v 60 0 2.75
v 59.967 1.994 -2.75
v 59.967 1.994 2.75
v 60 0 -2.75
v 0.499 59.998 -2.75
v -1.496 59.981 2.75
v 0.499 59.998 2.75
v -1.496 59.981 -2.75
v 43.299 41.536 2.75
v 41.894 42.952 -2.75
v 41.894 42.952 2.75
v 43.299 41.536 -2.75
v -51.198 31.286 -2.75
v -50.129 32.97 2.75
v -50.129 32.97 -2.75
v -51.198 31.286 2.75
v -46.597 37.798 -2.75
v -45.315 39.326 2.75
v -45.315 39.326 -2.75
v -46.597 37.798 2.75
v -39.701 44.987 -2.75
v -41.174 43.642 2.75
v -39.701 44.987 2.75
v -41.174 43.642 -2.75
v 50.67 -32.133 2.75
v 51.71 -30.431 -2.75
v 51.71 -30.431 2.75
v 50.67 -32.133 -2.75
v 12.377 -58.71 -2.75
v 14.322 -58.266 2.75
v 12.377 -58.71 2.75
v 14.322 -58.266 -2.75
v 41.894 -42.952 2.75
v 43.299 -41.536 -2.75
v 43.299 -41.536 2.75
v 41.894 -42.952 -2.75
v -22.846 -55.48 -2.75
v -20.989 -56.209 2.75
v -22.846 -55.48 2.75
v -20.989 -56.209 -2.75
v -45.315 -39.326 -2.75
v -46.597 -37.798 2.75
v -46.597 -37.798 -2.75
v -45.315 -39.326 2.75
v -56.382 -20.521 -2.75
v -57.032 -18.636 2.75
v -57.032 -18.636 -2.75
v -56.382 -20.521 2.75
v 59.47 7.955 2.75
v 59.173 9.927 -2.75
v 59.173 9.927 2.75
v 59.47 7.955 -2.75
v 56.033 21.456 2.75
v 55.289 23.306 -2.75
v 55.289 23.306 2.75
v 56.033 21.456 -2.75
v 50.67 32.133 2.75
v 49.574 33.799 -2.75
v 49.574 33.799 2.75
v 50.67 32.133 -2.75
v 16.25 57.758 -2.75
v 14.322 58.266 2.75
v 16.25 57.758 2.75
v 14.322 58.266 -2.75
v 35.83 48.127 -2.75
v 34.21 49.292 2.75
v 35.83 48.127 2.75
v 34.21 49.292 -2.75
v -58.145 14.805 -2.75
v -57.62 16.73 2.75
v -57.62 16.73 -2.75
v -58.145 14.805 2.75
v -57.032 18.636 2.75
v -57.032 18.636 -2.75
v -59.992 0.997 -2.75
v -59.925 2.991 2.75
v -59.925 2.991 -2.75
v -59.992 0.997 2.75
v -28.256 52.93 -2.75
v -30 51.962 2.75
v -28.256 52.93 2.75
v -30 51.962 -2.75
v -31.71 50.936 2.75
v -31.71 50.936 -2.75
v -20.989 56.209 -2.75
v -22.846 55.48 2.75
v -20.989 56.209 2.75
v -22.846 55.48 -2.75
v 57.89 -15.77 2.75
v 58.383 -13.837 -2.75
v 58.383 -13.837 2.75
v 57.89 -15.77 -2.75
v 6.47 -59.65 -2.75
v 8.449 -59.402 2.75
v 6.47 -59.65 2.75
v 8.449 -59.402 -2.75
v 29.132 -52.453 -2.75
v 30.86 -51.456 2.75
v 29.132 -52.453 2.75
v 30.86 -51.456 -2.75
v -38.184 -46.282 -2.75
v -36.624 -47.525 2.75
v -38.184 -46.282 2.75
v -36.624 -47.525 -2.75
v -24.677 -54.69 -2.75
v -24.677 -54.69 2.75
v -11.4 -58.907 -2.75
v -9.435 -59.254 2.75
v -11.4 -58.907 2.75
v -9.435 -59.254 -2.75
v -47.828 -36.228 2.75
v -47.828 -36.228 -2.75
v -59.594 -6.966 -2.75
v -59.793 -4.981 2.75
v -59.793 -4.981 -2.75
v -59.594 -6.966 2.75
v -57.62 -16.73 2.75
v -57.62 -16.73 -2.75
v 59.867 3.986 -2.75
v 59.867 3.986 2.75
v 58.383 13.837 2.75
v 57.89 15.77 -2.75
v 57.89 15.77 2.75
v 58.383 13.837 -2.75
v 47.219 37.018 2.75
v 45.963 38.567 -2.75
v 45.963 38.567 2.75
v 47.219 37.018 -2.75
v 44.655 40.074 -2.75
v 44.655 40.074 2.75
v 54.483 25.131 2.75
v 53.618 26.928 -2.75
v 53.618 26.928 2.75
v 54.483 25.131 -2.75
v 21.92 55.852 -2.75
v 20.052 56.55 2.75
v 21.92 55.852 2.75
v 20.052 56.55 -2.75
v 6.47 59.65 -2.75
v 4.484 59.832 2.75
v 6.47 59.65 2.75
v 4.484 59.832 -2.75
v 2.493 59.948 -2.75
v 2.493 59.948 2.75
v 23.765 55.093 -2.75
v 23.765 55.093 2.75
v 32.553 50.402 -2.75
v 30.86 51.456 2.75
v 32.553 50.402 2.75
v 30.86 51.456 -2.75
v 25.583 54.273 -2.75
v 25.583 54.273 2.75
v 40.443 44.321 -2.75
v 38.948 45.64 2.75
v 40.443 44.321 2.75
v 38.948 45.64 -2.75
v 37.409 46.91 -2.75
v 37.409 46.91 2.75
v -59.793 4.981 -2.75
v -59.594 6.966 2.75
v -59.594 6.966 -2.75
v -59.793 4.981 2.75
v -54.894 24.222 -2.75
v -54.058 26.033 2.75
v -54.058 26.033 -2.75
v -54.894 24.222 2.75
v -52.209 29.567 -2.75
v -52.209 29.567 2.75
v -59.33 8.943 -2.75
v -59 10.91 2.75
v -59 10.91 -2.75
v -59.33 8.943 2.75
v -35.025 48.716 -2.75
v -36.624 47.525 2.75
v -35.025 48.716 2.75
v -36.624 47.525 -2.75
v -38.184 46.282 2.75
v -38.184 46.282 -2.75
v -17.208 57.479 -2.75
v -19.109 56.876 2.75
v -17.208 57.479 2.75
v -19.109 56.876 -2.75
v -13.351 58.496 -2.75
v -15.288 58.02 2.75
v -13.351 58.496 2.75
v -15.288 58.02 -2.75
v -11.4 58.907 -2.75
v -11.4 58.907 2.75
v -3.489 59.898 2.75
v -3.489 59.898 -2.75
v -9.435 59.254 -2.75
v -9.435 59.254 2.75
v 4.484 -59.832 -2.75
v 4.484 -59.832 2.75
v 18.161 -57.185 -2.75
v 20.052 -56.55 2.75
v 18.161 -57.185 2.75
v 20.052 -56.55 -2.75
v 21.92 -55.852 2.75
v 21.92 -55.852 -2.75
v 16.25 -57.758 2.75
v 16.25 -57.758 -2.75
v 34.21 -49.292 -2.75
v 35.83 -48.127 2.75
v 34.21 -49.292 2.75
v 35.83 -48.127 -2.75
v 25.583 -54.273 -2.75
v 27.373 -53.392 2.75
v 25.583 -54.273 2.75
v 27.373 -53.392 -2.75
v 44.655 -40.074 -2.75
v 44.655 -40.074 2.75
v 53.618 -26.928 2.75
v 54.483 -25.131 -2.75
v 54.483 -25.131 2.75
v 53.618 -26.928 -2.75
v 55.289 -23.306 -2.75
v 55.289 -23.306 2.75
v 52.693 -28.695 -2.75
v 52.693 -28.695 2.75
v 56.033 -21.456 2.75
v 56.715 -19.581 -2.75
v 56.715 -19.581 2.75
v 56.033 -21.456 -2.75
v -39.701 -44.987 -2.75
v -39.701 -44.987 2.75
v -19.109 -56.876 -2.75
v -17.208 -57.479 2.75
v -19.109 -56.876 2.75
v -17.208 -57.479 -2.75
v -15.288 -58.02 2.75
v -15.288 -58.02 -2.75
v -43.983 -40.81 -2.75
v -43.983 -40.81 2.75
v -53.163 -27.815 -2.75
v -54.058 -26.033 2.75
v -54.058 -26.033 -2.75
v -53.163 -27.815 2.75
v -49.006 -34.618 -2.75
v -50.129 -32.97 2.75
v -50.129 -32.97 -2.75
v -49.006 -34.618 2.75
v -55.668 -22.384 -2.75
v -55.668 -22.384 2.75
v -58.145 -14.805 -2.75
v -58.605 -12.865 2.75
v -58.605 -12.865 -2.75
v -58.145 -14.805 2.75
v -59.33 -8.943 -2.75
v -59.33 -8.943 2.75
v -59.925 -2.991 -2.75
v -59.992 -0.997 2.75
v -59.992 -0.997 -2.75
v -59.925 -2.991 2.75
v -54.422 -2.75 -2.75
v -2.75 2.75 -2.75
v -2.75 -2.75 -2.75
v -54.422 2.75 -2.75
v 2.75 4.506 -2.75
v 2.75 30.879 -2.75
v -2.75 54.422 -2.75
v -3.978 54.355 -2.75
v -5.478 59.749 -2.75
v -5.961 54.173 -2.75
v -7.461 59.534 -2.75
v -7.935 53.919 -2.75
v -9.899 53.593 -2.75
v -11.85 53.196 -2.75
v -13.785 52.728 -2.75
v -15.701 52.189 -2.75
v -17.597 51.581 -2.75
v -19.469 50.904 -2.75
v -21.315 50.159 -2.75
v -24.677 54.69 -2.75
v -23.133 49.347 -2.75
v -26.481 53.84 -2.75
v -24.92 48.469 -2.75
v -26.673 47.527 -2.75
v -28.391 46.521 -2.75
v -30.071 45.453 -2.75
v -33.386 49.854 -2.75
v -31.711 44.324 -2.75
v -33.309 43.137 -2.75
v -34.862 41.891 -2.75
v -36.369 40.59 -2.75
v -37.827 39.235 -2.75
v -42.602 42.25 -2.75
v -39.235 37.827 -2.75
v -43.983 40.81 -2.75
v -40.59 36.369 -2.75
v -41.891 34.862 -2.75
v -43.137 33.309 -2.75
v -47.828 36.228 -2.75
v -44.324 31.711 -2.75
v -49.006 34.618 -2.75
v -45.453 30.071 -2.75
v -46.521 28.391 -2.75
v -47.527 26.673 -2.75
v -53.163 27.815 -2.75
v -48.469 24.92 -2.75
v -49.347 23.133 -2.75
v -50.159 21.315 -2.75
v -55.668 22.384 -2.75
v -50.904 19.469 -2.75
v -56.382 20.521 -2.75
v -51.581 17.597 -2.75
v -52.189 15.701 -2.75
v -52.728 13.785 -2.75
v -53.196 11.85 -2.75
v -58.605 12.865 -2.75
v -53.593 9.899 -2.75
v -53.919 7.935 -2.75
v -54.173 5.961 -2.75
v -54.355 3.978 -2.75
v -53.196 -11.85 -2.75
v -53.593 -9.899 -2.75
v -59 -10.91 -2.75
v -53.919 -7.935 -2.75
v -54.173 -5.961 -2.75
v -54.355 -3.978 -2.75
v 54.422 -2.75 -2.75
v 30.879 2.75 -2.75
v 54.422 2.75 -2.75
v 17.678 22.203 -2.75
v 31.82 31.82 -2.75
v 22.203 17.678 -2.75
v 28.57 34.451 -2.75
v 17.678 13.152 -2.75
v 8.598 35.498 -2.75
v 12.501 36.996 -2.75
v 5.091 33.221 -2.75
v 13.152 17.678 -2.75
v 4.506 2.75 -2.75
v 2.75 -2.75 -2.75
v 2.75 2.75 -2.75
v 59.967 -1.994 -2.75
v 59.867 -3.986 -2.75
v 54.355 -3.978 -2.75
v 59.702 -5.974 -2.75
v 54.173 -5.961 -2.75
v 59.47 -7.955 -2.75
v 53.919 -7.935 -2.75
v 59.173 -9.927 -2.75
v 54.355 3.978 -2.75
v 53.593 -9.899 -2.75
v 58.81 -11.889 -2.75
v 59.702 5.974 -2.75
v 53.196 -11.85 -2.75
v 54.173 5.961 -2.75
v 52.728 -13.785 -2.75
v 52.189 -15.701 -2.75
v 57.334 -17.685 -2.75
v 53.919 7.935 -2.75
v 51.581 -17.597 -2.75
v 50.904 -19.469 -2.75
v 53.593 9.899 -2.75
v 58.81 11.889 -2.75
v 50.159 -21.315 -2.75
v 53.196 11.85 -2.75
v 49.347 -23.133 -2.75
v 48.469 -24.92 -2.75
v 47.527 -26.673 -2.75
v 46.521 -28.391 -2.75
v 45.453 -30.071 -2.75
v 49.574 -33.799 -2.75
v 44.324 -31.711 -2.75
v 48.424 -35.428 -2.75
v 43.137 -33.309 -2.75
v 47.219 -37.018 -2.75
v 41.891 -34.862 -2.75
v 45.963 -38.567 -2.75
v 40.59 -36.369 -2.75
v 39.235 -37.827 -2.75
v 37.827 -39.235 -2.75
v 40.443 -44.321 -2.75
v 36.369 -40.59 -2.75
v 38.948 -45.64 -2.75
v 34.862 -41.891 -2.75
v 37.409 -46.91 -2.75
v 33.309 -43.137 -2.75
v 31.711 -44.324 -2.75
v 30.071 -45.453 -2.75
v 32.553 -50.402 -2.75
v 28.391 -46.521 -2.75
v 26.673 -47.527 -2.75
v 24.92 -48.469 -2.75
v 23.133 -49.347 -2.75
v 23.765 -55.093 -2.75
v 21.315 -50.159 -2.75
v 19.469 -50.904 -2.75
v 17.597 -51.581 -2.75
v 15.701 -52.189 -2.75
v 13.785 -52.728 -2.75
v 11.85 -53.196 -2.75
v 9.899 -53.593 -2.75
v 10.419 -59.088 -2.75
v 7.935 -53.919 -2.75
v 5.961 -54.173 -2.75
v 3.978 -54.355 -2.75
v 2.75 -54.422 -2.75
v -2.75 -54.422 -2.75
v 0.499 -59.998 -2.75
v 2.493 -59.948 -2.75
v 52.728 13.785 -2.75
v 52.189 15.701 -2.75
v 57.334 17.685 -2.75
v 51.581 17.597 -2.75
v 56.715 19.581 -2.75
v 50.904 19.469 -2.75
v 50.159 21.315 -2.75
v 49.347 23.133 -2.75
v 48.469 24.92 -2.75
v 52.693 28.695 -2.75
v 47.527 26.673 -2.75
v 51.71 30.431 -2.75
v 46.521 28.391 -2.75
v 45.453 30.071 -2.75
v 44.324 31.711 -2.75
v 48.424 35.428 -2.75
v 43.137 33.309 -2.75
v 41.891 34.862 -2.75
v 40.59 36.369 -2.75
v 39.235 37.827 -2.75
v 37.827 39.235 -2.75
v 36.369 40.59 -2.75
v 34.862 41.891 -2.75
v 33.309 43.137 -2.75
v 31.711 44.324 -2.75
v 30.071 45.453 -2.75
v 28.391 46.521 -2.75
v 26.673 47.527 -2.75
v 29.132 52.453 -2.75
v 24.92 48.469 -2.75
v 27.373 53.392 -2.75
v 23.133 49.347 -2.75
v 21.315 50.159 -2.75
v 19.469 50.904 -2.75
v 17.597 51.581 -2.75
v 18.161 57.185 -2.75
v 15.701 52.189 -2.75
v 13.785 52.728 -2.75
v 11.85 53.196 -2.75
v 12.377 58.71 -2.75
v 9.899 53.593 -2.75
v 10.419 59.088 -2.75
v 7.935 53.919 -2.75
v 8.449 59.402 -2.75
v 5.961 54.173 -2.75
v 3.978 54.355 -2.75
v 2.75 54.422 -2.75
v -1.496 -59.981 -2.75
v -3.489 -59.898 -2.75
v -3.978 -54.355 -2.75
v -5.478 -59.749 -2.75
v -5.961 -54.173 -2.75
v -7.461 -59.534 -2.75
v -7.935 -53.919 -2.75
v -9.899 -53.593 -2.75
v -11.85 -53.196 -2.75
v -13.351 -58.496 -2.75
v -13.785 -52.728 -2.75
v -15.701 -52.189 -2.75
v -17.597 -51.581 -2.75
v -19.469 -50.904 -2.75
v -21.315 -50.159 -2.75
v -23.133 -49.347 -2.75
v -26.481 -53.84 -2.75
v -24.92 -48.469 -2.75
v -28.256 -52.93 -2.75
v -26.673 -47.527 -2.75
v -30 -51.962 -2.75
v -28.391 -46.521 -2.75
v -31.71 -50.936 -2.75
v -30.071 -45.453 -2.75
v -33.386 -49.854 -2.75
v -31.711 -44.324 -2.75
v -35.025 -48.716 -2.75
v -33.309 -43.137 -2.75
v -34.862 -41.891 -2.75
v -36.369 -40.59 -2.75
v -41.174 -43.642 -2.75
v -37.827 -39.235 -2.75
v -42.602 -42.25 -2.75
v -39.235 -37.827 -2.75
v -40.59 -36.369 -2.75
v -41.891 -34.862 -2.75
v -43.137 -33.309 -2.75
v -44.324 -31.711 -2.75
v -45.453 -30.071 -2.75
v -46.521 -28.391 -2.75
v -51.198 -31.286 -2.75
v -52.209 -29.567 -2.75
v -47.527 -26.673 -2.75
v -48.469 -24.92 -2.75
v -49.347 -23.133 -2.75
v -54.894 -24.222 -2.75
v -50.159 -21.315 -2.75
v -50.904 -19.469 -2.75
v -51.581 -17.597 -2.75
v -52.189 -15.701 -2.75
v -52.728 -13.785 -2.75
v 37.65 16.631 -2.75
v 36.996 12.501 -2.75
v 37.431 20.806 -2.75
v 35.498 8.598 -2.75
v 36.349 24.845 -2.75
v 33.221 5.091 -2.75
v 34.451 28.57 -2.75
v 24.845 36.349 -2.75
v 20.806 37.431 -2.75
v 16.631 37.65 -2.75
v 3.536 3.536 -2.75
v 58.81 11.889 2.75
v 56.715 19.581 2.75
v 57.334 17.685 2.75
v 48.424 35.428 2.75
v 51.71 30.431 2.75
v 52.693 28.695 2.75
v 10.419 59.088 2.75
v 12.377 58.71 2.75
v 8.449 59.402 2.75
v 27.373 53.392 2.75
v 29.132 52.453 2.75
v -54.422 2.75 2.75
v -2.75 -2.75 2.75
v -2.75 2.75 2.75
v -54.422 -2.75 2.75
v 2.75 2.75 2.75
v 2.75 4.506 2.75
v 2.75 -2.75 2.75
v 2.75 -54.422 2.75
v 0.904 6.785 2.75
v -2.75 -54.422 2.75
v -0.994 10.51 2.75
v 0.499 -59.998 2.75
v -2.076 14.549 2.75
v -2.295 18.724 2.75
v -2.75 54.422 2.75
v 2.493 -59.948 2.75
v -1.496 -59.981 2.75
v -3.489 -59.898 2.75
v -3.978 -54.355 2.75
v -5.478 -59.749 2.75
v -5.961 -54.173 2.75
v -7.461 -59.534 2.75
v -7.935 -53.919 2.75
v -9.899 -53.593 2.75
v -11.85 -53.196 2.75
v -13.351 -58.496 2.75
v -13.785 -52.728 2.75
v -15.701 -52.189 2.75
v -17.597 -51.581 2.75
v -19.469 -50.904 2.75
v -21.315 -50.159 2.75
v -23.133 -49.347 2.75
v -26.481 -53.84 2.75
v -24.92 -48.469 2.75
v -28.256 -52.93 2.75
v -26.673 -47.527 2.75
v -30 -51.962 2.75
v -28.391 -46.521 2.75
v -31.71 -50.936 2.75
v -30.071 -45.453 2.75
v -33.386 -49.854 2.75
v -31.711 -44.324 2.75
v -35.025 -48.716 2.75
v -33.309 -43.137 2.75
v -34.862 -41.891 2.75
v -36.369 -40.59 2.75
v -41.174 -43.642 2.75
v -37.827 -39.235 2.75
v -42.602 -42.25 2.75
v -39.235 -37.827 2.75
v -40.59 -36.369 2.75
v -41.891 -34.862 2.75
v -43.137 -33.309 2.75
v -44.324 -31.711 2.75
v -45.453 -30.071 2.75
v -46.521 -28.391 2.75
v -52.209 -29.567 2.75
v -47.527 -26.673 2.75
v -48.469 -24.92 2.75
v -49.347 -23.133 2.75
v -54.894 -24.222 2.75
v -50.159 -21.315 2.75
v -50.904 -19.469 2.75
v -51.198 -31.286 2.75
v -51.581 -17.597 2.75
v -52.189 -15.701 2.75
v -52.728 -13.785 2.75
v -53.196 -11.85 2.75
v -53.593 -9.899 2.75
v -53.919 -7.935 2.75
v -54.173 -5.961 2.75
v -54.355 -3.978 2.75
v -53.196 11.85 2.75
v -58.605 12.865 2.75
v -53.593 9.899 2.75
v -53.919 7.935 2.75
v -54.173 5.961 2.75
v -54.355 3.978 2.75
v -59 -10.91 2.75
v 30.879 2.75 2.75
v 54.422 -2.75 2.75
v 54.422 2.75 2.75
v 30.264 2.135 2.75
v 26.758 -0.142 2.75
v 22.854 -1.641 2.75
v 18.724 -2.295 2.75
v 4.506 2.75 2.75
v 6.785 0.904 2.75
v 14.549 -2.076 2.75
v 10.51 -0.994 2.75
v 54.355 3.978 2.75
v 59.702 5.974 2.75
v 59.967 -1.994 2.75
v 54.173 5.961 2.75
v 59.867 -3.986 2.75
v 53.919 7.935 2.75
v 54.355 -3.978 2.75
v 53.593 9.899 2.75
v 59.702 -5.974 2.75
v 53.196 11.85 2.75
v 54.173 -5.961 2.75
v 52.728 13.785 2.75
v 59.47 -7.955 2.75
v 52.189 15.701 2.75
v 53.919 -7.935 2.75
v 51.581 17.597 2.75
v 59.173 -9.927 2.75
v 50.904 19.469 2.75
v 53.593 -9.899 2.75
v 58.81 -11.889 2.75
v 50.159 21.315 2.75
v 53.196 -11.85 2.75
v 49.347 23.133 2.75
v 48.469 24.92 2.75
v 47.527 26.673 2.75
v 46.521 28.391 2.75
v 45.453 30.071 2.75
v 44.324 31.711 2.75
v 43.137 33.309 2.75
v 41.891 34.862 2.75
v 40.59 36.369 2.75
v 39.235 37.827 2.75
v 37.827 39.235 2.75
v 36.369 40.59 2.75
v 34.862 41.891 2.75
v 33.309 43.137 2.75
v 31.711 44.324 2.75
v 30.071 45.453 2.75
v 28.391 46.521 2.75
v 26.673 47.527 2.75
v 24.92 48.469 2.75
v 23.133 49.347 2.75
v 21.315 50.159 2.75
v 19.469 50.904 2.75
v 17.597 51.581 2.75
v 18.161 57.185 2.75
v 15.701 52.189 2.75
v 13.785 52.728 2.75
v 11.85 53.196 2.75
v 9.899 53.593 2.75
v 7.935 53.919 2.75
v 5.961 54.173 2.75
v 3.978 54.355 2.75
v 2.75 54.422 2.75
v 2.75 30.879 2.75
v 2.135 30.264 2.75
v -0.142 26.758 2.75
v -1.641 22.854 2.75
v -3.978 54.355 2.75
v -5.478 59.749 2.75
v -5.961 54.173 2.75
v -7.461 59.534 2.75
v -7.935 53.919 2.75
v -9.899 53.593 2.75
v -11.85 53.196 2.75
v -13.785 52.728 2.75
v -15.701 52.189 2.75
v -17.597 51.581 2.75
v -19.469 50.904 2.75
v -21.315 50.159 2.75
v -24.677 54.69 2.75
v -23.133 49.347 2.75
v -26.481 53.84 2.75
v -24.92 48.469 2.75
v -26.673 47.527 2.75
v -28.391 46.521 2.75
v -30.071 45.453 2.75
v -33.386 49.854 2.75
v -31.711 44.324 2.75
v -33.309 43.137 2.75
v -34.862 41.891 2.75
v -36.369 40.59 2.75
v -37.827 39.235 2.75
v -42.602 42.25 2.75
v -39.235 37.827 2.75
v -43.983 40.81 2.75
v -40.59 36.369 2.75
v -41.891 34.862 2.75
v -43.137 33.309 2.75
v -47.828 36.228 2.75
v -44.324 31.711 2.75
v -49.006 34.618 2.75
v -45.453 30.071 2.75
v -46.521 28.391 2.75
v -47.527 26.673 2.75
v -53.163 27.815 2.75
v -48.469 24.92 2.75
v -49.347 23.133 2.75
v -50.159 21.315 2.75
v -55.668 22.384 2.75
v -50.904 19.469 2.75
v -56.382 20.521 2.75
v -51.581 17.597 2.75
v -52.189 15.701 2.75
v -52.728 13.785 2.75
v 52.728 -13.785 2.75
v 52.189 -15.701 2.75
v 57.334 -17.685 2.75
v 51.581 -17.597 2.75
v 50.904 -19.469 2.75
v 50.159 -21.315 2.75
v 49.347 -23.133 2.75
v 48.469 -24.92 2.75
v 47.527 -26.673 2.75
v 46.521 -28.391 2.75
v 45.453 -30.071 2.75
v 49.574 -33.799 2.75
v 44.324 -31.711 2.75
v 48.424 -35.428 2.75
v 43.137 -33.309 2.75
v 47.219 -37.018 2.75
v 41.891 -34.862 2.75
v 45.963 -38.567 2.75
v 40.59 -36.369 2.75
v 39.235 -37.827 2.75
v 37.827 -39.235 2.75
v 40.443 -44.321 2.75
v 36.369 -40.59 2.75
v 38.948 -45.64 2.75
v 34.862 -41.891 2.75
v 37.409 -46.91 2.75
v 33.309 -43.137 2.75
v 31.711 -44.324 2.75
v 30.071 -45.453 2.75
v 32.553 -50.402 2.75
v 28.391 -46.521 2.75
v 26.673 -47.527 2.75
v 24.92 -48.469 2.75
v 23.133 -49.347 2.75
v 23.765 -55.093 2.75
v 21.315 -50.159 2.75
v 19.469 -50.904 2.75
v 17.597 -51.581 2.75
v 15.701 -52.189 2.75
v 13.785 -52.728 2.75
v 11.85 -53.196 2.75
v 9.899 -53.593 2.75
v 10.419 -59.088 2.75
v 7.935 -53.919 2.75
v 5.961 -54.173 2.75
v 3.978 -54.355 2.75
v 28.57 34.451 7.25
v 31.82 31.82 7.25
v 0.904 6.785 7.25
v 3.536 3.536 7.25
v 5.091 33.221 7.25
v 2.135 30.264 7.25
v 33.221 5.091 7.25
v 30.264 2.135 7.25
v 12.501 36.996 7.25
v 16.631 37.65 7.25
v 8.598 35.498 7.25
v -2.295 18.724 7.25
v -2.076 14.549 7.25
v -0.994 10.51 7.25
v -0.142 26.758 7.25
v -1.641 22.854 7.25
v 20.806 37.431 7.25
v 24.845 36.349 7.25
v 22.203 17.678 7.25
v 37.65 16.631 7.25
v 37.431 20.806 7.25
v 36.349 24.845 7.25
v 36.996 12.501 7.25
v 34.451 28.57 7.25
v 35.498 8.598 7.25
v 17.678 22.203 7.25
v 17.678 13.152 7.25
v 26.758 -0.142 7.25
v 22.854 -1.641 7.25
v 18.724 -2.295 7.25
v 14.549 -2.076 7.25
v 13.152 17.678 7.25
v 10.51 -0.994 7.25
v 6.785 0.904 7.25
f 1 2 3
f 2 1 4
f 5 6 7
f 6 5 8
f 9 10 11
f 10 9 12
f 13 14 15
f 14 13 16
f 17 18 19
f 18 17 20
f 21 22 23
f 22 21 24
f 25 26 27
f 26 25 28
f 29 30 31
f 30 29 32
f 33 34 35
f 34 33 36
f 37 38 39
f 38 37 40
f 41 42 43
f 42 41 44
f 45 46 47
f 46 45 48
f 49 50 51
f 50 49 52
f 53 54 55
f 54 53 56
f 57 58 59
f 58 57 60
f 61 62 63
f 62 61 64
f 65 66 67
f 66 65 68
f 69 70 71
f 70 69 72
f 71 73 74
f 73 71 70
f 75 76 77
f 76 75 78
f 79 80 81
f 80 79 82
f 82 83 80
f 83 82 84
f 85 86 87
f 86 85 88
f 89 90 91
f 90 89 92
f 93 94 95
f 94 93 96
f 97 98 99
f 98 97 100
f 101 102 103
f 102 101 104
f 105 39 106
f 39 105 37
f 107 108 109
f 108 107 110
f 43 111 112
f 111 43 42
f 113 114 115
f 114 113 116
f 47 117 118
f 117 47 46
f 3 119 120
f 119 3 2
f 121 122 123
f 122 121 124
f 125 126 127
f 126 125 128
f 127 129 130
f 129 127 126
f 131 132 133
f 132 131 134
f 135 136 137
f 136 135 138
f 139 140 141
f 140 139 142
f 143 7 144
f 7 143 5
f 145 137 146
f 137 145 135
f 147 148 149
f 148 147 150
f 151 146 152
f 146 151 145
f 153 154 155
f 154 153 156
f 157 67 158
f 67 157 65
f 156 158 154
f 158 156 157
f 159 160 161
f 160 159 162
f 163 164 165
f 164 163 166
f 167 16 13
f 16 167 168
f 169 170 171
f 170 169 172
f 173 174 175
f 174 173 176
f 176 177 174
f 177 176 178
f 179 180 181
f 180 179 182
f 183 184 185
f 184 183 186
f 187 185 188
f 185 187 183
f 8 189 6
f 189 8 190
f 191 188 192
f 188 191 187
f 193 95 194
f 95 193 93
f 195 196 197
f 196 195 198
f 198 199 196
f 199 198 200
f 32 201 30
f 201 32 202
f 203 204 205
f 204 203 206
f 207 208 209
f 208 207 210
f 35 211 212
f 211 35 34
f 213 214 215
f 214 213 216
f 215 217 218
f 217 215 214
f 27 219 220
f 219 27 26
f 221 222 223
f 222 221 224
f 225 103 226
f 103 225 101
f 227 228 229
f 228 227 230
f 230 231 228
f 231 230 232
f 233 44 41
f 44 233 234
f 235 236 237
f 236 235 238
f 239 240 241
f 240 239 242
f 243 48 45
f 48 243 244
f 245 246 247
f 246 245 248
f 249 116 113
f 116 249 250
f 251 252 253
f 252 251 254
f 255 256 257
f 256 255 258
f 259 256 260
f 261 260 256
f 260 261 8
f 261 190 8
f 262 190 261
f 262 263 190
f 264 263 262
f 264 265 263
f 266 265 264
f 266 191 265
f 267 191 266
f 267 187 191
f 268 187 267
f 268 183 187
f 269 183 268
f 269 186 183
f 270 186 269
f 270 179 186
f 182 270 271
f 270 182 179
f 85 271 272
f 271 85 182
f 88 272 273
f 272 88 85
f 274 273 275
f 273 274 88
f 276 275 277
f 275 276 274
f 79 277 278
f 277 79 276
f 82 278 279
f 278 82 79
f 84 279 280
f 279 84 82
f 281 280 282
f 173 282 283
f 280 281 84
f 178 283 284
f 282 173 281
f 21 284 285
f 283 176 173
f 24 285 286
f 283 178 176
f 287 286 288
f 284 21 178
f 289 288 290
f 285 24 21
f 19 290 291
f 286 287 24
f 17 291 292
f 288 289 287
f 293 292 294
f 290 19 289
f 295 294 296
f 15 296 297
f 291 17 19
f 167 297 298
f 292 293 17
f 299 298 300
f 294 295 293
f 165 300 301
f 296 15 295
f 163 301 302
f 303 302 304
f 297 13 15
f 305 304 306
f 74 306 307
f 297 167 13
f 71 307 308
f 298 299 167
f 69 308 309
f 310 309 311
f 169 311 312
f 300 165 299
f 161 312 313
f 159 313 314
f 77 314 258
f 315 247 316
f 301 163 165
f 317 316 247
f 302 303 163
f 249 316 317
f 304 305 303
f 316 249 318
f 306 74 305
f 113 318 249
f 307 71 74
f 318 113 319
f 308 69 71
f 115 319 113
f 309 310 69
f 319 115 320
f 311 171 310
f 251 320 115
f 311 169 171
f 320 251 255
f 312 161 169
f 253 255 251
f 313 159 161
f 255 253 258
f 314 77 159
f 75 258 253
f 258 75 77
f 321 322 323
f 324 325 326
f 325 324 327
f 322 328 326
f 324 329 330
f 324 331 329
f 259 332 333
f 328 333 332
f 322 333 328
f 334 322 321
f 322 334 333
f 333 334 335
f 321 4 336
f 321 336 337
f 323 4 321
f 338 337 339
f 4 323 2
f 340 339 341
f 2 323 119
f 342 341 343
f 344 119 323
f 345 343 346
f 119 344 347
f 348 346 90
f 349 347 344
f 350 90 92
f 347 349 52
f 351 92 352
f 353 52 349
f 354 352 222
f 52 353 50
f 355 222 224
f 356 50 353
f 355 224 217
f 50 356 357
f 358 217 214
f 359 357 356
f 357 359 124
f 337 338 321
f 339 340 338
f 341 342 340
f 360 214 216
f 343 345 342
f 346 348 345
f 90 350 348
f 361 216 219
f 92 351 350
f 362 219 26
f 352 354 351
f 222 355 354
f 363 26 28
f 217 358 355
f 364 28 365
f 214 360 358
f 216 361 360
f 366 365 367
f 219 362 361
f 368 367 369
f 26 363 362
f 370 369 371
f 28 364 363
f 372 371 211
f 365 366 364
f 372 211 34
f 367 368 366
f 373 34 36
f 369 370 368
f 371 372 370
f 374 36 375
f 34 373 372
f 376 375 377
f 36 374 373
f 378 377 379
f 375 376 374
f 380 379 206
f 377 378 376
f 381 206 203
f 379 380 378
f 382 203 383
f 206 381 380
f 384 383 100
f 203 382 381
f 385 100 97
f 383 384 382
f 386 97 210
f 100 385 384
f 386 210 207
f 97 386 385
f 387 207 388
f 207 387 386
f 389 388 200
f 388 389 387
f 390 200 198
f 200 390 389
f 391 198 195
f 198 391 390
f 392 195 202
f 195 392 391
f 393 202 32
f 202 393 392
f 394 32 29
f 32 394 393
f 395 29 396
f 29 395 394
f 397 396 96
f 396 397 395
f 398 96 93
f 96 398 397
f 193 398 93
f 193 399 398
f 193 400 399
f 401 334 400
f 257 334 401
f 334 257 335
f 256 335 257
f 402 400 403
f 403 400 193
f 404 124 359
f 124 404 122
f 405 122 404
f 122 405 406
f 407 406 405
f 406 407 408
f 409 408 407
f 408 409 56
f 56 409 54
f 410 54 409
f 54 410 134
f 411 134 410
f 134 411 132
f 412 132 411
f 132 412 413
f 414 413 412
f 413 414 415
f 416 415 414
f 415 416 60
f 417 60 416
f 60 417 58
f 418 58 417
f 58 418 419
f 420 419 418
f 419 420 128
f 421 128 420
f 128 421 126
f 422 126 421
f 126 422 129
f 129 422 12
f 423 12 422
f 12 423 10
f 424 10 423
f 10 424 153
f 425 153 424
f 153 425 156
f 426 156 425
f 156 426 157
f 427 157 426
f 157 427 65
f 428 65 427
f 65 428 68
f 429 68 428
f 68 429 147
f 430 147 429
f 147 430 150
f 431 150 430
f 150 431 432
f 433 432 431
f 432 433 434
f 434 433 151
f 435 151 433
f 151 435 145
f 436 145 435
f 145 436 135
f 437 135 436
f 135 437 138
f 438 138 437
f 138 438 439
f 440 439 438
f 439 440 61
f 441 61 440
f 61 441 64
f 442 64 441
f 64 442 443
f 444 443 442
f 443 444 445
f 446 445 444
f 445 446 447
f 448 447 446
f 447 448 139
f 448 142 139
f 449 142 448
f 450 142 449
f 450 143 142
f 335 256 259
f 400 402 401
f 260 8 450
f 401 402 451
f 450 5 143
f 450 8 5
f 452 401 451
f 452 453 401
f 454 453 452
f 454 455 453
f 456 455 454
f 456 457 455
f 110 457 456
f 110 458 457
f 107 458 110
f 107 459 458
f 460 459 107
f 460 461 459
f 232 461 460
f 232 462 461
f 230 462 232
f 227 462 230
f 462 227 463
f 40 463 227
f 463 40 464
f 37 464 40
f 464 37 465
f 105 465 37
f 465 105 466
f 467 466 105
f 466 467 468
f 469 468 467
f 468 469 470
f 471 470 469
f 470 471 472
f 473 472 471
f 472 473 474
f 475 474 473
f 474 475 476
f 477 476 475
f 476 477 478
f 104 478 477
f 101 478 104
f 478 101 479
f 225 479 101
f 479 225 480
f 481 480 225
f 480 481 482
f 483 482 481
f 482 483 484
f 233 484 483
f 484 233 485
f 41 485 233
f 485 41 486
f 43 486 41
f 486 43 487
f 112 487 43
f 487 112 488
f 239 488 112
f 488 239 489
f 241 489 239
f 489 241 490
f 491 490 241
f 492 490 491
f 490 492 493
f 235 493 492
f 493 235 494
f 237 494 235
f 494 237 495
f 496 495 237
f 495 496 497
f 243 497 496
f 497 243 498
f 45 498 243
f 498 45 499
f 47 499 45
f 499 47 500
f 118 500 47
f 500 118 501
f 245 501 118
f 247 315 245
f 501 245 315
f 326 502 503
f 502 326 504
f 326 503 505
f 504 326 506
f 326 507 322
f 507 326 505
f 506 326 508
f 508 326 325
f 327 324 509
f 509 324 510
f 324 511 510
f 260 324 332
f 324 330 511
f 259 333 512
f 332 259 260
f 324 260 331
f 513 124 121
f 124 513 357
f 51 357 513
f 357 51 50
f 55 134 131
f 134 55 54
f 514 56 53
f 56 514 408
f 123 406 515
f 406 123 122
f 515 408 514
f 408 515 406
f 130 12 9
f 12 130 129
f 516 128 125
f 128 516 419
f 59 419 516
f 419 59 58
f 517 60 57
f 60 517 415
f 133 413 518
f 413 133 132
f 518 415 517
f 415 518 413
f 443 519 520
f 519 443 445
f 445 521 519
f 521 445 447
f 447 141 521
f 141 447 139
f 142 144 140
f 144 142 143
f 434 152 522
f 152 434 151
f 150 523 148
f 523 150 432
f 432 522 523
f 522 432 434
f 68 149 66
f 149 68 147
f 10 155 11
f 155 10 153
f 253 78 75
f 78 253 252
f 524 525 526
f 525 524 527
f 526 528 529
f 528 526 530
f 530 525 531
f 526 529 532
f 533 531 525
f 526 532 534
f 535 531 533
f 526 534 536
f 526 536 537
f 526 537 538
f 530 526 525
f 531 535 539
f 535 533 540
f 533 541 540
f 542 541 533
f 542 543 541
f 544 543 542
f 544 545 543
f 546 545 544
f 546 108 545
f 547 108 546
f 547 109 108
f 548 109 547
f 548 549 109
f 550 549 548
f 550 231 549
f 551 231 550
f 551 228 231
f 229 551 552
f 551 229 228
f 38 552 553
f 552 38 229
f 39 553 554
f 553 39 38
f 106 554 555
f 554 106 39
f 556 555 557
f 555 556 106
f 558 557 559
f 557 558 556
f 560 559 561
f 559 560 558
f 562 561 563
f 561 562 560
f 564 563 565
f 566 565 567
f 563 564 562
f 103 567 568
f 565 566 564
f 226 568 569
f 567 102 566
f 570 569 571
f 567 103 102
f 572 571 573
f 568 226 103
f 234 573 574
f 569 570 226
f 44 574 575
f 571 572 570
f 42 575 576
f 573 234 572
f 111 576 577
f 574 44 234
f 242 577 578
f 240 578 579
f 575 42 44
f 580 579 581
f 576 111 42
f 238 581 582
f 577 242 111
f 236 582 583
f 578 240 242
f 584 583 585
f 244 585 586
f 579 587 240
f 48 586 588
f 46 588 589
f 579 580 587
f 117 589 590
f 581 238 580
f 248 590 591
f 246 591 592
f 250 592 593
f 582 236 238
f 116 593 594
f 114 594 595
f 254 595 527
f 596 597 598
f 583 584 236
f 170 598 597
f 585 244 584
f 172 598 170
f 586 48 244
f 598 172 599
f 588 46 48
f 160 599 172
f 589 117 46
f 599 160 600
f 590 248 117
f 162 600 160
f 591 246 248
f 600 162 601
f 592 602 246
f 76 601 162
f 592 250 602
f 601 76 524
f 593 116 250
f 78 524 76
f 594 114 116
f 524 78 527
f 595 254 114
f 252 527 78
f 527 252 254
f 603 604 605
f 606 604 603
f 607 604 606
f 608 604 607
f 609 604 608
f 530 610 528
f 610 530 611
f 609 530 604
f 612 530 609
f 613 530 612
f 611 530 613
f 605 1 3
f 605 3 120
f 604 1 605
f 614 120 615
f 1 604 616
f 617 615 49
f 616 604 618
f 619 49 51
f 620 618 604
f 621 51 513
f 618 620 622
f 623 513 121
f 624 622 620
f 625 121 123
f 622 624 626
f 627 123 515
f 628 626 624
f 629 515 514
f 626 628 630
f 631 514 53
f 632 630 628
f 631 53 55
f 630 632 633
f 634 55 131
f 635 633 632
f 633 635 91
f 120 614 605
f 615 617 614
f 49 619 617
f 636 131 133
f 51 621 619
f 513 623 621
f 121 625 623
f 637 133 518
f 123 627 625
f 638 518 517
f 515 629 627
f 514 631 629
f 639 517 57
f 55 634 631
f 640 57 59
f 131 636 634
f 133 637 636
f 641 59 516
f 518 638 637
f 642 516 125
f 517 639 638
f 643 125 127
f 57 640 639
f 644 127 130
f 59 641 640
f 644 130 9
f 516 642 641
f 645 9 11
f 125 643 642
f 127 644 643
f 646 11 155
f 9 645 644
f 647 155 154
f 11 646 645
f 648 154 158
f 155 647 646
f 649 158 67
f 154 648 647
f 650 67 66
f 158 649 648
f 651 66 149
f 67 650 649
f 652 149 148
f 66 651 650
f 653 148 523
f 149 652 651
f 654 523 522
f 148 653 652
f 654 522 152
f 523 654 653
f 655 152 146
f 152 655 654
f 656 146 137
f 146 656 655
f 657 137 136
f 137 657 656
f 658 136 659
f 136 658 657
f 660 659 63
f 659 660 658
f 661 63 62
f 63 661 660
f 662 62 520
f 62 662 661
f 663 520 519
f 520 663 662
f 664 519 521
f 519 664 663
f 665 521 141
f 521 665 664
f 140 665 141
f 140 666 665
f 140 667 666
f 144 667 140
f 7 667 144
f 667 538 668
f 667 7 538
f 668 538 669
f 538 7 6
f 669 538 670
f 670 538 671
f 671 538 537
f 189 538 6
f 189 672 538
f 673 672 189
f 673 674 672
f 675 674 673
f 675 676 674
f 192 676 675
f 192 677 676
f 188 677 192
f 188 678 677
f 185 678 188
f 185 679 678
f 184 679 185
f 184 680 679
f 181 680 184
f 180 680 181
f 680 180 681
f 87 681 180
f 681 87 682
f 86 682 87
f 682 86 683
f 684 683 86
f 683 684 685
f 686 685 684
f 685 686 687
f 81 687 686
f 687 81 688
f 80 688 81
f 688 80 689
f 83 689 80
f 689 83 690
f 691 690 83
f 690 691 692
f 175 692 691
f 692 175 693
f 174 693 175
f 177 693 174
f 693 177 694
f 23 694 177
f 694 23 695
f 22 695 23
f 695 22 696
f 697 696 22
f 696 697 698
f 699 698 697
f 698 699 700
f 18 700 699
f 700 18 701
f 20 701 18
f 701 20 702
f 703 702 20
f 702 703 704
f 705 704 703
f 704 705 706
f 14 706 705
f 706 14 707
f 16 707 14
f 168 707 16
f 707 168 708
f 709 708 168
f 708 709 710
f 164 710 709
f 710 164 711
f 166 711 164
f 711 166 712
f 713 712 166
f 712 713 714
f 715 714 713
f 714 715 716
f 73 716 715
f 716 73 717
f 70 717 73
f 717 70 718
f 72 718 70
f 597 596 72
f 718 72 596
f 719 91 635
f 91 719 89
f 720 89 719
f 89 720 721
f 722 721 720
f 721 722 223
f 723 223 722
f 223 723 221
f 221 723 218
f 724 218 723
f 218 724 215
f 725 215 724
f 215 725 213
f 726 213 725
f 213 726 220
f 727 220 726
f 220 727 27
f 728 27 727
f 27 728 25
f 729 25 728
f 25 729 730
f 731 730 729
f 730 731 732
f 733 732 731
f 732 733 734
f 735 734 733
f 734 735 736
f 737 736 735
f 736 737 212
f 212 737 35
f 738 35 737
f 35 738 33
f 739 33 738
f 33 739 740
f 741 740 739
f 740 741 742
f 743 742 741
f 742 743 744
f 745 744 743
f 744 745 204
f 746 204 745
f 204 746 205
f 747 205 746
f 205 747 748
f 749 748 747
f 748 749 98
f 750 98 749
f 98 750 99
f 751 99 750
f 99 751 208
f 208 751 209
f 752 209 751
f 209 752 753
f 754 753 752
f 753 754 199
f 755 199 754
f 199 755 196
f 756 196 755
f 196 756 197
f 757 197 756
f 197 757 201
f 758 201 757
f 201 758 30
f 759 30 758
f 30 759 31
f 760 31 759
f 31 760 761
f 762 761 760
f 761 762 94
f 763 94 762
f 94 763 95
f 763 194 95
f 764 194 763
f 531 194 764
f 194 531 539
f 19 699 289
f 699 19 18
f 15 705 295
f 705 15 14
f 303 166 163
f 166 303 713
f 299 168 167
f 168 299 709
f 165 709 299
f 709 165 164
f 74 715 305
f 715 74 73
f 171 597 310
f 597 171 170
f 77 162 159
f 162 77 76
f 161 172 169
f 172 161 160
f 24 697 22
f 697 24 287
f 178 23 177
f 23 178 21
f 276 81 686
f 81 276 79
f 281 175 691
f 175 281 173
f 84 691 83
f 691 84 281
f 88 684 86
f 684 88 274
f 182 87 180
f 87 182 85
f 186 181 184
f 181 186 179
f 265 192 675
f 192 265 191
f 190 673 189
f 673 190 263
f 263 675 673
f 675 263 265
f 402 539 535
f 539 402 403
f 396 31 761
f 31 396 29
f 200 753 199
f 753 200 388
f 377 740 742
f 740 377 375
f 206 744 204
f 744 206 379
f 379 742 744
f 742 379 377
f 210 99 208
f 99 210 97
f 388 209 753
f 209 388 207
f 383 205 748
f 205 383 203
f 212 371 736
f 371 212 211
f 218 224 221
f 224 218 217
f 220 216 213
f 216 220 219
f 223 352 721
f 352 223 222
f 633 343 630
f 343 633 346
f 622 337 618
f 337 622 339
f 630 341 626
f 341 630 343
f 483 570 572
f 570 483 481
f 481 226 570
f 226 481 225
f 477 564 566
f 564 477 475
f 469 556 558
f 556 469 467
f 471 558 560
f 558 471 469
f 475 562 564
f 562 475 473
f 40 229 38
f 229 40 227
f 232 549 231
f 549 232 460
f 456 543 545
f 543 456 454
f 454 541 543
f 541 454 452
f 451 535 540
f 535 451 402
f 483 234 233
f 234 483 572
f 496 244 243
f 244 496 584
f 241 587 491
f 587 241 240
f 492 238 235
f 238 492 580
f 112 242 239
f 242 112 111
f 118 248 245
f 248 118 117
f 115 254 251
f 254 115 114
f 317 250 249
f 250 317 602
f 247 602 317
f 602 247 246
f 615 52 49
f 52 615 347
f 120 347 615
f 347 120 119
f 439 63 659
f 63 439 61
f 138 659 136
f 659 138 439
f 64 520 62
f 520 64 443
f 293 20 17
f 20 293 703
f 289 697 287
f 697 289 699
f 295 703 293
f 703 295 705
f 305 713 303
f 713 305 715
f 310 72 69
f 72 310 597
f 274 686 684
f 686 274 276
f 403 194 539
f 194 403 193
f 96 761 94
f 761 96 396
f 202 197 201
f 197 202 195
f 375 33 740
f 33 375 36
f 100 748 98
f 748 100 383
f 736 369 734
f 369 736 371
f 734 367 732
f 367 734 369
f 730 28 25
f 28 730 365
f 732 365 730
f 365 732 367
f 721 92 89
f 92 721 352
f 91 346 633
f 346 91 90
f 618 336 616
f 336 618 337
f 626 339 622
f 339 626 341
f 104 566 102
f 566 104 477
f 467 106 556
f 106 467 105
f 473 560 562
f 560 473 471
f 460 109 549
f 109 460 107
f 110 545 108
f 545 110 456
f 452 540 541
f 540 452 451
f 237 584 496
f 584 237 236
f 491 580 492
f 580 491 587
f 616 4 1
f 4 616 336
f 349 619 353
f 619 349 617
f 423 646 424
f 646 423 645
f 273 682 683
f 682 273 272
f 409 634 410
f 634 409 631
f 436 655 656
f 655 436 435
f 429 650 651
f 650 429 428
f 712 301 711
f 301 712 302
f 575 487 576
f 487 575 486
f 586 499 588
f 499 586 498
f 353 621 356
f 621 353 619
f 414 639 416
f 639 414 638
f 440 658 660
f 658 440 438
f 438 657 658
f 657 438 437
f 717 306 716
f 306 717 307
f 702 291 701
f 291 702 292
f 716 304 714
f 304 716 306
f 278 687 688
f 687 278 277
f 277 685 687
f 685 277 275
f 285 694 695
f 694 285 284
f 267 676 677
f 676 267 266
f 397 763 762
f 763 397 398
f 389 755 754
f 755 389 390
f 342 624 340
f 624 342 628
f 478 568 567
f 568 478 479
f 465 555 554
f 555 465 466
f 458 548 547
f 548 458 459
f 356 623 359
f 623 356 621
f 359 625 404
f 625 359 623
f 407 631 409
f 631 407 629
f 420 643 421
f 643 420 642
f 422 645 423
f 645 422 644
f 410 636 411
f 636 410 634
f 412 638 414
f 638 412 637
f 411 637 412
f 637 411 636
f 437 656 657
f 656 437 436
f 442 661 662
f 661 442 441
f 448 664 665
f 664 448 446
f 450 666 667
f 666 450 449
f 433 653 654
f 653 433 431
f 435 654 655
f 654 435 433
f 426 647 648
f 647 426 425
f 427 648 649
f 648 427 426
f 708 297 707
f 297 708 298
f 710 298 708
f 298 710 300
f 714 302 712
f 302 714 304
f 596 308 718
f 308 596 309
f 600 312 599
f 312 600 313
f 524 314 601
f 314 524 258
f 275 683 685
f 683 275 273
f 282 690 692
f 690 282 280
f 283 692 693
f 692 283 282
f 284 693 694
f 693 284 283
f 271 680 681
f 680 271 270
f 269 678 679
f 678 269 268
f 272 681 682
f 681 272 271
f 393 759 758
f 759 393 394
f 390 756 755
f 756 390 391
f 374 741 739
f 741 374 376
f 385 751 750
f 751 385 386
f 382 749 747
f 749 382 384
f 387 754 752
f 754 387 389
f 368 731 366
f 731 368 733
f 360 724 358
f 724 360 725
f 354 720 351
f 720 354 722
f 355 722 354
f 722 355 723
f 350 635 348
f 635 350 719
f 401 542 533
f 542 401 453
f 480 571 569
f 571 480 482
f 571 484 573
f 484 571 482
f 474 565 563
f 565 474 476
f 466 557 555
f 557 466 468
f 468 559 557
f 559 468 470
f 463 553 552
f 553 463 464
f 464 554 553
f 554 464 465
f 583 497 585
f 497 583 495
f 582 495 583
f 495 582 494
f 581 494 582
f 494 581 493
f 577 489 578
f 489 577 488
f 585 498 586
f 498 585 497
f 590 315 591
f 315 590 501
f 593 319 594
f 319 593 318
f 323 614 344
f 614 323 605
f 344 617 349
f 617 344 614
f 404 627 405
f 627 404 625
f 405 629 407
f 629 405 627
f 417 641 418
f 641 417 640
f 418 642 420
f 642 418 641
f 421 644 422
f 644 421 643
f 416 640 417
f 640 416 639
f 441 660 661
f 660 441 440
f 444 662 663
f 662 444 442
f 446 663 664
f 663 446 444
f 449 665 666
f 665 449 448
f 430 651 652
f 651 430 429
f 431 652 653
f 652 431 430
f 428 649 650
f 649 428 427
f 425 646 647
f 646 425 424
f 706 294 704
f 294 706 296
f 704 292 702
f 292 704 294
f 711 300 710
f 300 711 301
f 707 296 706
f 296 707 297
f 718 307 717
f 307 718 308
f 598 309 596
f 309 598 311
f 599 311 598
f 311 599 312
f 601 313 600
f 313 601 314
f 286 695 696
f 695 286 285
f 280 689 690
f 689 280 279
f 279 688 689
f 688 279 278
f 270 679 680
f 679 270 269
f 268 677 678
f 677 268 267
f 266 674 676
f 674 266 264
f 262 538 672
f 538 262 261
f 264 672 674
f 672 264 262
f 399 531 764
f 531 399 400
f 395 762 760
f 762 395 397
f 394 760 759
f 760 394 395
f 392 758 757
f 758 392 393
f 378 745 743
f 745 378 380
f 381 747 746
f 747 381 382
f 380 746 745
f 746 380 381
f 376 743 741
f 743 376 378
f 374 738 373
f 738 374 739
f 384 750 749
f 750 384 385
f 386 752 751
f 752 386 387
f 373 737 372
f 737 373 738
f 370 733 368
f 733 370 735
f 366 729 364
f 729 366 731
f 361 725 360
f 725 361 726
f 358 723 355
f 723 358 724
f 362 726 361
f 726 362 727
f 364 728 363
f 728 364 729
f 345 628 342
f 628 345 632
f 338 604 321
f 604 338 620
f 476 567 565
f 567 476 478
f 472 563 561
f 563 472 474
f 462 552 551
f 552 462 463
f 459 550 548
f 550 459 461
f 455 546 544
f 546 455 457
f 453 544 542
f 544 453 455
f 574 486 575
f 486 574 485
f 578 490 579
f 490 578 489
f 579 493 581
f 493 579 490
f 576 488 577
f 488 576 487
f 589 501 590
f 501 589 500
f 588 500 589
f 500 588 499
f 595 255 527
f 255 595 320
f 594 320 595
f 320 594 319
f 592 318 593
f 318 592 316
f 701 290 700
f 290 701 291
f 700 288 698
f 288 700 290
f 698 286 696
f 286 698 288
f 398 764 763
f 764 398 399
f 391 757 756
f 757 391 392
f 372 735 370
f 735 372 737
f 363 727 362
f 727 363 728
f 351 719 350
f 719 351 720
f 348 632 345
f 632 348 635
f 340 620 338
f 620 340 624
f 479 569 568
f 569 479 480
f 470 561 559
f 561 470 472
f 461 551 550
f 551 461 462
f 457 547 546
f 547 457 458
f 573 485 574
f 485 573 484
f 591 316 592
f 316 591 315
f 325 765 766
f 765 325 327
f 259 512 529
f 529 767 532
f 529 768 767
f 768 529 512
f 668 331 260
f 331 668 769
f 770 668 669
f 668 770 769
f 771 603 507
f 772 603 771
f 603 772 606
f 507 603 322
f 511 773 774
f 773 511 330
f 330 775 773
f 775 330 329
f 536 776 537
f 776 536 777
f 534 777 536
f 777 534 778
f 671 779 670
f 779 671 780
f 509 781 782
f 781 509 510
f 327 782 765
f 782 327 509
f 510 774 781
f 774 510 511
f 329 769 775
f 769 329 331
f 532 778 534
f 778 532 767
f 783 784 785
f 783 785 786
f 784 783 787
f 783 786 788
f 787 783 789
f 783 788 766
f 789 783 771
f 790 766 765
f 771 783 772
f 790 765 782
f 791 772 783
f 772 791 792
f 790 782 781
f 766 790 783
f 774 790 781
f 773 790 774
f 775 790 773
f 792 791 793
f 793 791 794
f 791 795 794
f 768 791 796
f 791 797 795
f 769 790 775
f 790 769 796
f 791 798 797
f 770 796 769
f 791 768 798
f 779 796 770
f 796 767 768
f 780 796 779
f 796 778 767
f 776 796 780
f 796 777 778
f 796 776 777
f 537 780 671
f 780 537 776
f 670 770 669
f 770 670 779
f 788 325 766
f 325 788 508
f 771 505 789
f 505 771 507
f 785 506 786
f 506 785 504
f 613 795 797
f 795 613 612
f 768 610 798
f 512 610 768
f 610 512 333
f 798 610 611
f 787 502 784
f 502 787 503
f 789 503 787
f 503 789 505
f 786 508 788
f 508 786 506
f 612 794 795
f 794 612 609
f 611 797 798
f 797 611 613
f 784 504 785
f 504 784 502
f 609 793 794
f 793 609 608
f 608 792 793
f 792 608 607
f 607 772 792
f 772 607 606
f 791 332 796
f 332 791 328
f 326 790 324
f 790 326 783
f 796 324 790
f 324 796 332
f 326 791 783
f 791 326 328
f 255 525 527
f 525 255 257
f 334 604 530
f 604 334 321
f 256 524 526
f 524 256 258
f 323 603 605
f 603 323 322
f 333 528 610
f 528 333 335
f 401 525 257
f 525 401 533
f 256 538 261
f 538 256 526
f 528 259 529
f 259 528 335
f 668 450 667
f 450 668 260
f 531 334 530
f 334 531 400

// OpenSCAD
outerdiameter=120;
ringwidth=5.5;
height=5.5;
holerotation = 15;
//index=0;
//index=1;
//index=2;
//index=3;
//index=4;
index=5;

module axelpart()
{
    translate([25,0,2.25]) {
        difference(){
            cylinder(h=10, r=20, center=true);
            //union(){
            //cube([6.4,6.4,100],true);
            rotate(a=holerotation*index,v=[0,0,1]){
                cube([6.4,6.4,100],true);
            }
           // }
        }
    }
}

module ring() {
    $fa =0.1;
    color("Lime") 
    difference() {
        cylinder(h=height, r=outerdiameter/2, center=true);
        cylinder(r=(outerdiameter/2)-ringwidth,h=height+2,center=true) ;  
    }
}

union(){
    ring();
    spoke();
    rotate(a=90, v=[0,0,1]) {spoke(); }
    rotate(a=45, v=[0,0,1]){
        axelpart();
    }
}


module spoke()
{
     cube([outerdiameter-5,height,height],true);
}
